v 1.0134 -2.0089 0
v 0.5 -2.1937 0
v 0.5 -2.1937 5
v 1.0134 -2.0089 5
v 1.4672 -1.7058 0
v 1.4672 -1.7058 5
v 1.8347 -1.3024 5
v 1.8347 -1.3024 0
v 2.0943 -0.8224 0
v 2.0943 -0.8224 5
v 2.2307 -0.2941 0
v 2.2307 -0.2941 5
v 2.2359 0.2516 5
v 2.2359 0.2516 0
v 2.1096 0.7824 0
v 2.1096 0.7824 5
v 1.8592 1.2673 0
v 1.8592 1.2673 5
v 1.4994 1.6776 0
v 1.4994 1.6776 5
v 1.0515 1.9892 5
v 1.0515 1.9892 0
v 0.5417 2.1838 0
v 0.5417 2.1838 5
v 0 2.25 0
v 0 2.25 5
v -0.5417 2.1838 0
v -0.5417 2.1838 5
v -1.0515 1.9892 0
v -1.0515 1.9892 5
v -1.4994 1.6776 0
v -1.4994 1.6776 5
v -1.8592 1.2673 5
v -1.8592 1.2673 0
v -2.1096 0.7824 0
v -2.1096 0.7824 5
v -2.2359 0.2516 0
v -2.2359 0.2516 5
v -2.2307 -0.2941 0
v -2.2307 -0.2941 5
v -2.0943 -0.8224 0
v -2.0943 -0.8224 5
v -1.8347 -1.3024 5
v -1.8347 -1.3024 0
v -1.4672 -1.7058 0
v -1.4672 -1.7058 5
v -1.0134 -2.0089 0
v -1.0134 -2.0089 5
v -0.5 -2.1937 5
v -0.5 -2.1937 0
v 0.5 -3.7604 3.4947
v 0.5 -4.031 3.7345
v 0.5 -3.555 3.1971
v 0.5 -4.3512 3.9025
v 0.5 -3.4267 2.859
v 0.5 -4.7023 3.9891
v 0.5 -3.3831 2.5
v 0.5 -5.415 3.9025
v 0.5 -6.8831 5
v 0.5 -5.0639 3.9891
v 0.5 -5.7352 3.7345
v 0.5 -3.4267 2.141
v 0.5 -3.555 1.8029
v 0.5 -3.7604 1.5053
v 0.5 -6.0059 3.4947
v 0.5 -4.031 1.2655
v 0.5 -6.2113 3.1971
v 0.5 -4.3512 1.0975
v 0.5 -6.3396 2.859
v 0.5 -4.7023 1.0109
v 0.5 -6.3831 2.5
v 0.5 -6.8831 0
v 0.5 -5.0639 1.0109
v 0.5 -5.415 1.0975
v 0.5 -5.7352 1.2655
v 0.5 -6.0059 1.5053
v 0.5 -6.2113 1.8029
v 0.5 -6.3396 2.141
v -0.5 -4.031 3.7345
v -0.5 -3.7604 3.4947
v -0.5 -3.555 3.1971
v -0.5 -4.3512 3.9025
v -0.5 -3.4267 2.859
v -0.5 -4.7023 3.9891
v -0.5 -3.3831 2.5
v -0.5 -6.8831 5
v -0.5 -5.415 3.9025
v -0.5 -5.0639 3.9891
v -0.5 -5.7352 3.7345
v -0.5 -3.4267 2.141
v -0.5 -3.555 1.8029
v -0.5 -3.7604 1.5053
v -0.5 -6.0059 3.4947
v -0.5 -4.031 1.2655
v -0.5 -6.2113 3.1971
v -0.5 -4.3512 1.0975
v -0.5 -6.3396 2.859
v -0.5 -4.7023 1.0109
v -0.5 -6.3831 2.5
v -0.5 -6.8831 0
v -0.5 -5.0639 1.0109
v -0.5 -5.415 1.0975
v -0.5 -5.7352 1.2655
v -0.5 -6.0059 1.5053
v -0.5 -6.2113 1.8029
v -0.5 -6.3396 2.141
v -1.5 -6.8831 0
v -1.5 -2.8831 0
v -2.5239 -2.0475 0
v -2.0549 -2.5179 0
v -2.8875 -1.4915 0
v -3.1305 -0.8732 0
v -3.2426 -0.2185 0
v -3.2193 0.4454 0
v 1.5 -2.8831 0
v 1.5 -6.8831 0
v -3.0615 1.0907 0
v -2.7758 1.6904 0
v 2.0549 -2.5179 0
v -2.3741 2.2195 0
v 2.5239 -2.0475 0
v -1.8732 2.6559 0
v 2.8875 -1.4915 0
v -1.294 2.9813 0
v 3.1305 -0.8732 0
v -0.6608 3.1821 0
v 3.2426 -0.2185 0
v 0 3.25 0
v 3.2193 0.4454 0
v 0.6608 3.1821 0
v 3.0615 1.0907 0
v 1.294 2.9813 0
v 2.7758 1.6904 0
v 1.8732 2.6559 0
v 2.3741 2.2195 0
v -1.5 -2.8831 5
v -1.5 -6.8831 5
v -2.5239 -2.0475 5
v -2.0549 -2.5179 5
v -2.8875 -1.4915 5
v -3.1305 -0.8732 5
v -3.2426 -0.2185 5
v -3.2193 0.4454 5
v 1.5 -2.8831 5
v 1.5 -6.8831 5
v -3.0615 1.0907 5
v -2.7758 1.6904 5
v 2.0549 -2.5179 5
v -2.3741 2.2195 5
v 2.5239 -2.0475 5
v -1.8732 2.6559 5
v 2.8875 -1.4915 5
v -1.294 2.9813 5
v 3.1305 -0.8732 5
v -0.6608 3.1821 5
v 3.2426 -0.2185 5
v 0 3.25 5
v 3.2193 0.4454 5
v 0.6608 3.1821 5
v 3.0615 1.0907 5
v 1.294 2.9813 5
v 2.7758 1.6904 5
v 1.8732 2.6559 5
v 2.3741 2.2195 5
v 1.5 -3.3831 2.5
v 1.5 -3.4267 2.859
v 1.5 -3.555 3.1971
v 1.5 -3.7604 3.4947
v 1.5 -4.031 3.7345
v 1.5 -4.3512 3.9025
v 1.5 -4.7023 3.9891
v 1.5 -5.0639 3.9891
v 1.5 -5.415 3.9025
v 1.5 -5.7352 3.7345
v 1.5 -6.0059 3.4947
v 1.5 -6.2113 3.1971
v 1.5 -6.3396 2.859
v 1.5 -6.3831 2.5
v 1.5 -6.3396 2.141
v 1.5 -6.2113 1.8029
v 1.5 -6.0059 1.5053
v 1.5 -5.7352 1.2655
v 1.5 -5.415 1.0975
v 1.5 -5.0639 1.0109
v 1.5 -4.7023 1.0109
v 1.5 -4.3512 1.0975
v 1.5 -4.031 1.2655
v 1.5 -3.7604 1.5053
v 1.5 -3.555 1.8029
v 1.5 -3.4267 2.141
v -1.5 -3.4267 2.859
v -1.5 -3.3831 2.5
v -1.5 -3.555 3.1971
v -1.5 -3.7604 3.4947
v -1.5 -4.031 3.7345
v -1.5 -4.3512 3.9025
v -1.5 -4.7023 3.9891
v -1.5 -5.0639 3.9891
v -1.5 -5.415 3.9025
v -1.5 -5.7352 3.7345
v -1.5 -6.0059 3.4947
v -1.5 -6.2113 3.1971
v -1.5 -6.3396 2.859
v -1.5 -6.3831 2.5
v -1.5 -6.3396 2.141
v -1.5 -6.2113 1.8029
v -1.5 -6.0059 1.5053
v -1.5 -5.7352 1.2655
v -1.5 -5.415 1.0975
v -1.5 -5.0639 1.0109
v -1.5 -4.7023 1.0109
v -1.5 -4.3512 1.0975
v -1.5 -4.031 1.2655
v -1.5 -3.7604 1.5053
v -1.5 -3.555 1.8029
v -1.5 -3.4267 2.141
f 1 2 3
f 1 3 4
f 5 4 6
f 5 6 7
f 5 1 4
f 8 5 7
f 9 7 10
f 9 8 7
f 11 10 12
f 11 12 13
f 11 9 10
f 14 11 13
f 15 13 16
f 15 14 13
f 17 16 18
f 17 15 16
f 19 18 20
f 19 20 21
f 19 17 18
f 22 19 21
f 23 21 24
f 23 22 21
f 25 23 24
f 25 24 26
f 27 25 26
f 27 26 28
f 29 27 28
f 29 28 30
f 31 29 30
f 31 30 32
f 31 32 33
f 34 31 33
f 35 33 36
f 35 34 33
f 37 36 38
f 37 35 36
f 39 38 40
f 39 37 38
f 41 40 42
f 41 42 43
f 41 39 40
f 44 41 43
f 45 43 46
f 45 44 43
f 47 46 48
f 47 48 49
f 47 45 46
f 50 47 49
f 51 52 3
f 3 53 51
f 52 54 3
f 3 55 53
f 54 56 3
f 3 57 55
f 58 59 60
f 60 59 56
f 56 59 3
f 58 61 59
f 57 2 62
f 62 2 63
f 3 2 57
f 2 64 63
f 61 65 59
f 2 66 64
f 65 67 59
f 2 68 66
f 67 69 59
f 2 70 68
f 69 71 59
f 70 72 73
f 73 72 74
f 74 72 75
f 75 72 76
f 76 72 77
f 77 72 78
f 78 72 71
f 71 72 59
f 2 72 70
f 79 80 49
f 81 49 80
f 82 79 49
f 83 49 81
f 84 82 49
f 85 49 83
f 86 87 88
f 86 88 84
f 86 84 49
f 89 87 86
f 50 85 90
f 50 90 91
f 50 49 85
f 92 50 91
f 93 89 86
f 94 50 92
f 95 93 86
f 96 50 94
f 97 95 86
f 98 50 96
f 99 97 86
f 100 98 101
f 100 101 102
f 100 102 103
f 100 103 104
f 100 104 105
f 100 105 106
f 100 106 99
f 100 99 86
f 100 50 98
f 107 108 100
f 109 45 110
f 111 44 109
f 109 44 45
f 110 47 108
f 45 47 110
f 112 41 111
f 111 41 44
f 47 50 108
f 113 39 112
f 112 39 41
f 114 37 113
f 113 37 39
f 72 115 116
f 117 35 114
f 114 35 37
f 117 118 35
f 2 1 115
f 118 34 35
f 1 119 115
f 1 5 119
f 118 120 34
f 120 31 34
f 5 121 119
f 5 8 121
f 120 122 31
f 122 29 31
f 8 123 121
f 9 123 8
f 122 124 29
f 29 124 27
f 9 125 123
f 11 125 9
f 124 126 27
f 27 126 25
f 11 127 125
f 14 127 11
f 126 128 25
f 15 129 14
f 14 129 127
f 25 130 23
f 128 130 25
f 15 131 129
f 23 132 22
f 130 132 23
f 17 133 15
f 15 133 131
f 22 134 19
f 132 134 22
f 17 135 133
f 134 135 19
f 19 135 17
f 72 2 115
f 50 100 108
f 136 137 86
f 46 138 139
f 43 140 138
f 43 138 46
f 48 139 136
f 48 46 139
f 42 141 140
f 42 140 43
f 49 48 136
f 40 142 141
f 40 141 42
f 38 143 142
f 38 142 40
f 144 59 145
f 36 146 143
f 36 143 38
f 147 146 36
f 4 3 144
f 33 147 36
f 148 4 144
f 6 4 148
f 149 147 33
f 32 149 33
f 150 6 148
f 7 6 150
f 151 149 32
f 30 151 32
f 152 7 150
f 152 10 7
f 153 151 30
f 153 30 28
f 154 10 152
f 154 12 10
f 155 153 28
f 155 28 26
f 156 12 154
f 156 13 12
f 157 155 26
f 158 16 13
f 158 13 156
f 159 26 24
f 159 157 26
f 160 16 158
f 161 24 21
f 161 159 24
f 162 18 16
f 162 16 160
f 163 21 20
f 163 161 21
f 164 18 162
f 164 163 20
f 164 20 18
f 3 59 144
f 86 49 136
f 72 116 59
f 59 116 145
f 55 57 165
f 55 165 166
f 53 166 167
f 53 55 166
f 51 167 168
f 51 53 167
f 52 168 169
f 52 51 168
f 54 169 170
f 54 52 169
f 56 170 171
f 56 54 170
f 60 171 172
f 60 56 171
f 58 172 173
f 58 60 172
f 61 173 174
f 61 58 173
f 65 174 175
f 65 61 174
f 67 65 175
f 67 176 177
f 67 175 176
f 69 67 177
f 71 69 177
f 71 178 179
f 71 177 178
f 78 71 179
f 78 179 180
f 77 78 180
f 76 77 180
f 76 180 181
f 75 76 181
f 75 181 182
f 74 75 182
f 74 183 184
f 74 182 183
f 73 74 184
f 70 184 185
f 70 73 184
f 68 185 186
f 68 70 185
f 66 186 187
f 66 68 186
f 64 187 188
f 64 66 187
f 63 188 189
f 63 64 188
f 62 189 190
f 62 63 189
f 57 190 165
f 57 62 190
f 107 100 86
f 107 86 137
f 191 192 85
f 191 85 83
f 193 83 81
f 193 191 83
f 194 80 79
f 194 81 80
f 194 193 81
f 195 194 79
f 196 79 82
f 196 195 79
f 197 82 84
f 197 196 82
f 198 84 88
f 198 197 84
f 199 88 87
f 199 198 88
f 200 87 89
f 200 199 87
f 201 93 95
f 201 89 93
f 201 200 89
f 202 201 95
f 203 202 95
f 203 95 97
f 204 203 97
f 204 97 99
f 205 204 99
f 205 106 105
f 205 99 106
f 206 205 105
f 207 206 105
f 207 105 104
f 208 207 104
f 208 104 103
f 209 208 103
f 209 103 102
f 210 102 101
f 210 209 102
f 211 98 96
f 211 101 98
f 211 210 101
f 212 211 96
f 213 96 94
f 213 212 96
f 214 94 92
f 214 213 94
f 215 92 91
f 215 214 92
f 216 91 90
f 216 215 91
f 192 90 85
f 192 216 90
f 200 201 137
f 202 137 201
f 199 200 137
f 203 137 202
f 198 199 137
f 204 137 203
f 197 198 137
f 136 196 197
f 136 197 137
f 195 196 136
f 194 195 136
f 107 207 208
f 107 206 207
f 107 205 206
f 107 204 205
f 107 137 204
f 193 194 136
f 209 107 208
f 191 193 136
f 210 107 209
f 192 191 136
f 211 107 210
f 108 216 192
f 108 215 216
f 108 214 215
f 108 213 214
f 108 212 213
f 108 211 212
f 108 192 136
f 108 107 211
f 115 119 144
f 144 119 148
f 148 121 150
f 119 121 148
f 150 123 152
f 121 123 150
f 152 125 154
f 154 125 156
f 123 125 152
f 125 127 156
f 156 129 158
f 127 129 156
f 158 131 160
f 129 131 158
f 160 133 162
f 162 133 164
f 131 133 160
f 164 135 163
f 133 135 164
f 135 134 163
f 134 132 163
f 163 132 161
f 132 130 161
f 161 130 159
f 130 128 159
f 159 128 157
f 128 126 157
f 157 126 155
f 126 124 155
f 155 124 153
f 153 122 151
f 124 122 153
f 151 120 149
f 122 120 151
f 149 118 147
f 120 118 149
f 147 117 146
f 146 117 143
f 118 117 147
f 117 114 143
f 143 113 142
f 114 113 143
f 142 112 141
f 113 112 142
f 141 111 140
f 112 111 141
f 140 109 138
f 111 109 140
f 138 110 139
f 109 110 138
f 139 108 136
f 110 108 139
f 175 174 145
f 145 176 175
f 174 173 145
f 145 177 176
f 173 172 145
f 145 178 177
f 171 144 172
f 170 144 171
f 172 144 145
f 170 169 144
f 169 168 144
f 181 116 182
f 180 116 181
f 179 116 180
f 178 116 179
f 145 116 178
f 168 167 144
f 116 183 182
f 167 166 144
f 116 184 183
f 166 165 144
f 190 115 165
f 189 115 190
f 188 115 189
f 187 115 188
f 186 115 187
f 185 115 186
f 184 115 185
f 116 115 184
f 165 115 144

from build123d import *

# Parameters (mm, degrees)
SKETCH001_R      = 1.5
EXTRUDE001_DEPTH = 10
EXTRUDE_DEPTH    = 5


with BuildPart() as extrude001:
    # Sketch001 (on Face6 of Extrude) → Extrude001 (new body, symmetric)
    with BuildSketch(Plane.YZ.offset(1.5)):
        with Locations((-4.883141, 2.5)):
            Circle(SKETCH001_R)
    extrude(amount=EXTRUDE001_DEPTH, both=True)


with BuildPart() as cut:
    # Sketch → Extrude (new body)
    with BuildSketch(Plane.XY):
        with BuildLine():
            ThreePointArc((0.5, -2.193741), (0, 2.25), (-0.5, -2.193741))
            Line((-0.5, -2.193741), (-0.5, -6.883141))
            Line((-0.5, -6.883141), (-1.5, -6.883141))
            Line((-1.5, -6.883141), (-1.5, -2.883141))
            ThreePointArc((1.5, -2.883141), (0, 3.25), (-1.5, -2.883141))
            Line((1.5, -6.883141), (1.5, -2.883141))
            Line((0.5, -6.883141), (1.5, -6.883141))
            Line((0.5, -2.193741), (0.5, -6.883141))
        make_face()
    extrude(amount=EXTRUDE_DEPTH)

    # Cut: cut Extrude001
    add(extrude001.part, mode=Mode.SUBTRACT)


solid = cut.part
